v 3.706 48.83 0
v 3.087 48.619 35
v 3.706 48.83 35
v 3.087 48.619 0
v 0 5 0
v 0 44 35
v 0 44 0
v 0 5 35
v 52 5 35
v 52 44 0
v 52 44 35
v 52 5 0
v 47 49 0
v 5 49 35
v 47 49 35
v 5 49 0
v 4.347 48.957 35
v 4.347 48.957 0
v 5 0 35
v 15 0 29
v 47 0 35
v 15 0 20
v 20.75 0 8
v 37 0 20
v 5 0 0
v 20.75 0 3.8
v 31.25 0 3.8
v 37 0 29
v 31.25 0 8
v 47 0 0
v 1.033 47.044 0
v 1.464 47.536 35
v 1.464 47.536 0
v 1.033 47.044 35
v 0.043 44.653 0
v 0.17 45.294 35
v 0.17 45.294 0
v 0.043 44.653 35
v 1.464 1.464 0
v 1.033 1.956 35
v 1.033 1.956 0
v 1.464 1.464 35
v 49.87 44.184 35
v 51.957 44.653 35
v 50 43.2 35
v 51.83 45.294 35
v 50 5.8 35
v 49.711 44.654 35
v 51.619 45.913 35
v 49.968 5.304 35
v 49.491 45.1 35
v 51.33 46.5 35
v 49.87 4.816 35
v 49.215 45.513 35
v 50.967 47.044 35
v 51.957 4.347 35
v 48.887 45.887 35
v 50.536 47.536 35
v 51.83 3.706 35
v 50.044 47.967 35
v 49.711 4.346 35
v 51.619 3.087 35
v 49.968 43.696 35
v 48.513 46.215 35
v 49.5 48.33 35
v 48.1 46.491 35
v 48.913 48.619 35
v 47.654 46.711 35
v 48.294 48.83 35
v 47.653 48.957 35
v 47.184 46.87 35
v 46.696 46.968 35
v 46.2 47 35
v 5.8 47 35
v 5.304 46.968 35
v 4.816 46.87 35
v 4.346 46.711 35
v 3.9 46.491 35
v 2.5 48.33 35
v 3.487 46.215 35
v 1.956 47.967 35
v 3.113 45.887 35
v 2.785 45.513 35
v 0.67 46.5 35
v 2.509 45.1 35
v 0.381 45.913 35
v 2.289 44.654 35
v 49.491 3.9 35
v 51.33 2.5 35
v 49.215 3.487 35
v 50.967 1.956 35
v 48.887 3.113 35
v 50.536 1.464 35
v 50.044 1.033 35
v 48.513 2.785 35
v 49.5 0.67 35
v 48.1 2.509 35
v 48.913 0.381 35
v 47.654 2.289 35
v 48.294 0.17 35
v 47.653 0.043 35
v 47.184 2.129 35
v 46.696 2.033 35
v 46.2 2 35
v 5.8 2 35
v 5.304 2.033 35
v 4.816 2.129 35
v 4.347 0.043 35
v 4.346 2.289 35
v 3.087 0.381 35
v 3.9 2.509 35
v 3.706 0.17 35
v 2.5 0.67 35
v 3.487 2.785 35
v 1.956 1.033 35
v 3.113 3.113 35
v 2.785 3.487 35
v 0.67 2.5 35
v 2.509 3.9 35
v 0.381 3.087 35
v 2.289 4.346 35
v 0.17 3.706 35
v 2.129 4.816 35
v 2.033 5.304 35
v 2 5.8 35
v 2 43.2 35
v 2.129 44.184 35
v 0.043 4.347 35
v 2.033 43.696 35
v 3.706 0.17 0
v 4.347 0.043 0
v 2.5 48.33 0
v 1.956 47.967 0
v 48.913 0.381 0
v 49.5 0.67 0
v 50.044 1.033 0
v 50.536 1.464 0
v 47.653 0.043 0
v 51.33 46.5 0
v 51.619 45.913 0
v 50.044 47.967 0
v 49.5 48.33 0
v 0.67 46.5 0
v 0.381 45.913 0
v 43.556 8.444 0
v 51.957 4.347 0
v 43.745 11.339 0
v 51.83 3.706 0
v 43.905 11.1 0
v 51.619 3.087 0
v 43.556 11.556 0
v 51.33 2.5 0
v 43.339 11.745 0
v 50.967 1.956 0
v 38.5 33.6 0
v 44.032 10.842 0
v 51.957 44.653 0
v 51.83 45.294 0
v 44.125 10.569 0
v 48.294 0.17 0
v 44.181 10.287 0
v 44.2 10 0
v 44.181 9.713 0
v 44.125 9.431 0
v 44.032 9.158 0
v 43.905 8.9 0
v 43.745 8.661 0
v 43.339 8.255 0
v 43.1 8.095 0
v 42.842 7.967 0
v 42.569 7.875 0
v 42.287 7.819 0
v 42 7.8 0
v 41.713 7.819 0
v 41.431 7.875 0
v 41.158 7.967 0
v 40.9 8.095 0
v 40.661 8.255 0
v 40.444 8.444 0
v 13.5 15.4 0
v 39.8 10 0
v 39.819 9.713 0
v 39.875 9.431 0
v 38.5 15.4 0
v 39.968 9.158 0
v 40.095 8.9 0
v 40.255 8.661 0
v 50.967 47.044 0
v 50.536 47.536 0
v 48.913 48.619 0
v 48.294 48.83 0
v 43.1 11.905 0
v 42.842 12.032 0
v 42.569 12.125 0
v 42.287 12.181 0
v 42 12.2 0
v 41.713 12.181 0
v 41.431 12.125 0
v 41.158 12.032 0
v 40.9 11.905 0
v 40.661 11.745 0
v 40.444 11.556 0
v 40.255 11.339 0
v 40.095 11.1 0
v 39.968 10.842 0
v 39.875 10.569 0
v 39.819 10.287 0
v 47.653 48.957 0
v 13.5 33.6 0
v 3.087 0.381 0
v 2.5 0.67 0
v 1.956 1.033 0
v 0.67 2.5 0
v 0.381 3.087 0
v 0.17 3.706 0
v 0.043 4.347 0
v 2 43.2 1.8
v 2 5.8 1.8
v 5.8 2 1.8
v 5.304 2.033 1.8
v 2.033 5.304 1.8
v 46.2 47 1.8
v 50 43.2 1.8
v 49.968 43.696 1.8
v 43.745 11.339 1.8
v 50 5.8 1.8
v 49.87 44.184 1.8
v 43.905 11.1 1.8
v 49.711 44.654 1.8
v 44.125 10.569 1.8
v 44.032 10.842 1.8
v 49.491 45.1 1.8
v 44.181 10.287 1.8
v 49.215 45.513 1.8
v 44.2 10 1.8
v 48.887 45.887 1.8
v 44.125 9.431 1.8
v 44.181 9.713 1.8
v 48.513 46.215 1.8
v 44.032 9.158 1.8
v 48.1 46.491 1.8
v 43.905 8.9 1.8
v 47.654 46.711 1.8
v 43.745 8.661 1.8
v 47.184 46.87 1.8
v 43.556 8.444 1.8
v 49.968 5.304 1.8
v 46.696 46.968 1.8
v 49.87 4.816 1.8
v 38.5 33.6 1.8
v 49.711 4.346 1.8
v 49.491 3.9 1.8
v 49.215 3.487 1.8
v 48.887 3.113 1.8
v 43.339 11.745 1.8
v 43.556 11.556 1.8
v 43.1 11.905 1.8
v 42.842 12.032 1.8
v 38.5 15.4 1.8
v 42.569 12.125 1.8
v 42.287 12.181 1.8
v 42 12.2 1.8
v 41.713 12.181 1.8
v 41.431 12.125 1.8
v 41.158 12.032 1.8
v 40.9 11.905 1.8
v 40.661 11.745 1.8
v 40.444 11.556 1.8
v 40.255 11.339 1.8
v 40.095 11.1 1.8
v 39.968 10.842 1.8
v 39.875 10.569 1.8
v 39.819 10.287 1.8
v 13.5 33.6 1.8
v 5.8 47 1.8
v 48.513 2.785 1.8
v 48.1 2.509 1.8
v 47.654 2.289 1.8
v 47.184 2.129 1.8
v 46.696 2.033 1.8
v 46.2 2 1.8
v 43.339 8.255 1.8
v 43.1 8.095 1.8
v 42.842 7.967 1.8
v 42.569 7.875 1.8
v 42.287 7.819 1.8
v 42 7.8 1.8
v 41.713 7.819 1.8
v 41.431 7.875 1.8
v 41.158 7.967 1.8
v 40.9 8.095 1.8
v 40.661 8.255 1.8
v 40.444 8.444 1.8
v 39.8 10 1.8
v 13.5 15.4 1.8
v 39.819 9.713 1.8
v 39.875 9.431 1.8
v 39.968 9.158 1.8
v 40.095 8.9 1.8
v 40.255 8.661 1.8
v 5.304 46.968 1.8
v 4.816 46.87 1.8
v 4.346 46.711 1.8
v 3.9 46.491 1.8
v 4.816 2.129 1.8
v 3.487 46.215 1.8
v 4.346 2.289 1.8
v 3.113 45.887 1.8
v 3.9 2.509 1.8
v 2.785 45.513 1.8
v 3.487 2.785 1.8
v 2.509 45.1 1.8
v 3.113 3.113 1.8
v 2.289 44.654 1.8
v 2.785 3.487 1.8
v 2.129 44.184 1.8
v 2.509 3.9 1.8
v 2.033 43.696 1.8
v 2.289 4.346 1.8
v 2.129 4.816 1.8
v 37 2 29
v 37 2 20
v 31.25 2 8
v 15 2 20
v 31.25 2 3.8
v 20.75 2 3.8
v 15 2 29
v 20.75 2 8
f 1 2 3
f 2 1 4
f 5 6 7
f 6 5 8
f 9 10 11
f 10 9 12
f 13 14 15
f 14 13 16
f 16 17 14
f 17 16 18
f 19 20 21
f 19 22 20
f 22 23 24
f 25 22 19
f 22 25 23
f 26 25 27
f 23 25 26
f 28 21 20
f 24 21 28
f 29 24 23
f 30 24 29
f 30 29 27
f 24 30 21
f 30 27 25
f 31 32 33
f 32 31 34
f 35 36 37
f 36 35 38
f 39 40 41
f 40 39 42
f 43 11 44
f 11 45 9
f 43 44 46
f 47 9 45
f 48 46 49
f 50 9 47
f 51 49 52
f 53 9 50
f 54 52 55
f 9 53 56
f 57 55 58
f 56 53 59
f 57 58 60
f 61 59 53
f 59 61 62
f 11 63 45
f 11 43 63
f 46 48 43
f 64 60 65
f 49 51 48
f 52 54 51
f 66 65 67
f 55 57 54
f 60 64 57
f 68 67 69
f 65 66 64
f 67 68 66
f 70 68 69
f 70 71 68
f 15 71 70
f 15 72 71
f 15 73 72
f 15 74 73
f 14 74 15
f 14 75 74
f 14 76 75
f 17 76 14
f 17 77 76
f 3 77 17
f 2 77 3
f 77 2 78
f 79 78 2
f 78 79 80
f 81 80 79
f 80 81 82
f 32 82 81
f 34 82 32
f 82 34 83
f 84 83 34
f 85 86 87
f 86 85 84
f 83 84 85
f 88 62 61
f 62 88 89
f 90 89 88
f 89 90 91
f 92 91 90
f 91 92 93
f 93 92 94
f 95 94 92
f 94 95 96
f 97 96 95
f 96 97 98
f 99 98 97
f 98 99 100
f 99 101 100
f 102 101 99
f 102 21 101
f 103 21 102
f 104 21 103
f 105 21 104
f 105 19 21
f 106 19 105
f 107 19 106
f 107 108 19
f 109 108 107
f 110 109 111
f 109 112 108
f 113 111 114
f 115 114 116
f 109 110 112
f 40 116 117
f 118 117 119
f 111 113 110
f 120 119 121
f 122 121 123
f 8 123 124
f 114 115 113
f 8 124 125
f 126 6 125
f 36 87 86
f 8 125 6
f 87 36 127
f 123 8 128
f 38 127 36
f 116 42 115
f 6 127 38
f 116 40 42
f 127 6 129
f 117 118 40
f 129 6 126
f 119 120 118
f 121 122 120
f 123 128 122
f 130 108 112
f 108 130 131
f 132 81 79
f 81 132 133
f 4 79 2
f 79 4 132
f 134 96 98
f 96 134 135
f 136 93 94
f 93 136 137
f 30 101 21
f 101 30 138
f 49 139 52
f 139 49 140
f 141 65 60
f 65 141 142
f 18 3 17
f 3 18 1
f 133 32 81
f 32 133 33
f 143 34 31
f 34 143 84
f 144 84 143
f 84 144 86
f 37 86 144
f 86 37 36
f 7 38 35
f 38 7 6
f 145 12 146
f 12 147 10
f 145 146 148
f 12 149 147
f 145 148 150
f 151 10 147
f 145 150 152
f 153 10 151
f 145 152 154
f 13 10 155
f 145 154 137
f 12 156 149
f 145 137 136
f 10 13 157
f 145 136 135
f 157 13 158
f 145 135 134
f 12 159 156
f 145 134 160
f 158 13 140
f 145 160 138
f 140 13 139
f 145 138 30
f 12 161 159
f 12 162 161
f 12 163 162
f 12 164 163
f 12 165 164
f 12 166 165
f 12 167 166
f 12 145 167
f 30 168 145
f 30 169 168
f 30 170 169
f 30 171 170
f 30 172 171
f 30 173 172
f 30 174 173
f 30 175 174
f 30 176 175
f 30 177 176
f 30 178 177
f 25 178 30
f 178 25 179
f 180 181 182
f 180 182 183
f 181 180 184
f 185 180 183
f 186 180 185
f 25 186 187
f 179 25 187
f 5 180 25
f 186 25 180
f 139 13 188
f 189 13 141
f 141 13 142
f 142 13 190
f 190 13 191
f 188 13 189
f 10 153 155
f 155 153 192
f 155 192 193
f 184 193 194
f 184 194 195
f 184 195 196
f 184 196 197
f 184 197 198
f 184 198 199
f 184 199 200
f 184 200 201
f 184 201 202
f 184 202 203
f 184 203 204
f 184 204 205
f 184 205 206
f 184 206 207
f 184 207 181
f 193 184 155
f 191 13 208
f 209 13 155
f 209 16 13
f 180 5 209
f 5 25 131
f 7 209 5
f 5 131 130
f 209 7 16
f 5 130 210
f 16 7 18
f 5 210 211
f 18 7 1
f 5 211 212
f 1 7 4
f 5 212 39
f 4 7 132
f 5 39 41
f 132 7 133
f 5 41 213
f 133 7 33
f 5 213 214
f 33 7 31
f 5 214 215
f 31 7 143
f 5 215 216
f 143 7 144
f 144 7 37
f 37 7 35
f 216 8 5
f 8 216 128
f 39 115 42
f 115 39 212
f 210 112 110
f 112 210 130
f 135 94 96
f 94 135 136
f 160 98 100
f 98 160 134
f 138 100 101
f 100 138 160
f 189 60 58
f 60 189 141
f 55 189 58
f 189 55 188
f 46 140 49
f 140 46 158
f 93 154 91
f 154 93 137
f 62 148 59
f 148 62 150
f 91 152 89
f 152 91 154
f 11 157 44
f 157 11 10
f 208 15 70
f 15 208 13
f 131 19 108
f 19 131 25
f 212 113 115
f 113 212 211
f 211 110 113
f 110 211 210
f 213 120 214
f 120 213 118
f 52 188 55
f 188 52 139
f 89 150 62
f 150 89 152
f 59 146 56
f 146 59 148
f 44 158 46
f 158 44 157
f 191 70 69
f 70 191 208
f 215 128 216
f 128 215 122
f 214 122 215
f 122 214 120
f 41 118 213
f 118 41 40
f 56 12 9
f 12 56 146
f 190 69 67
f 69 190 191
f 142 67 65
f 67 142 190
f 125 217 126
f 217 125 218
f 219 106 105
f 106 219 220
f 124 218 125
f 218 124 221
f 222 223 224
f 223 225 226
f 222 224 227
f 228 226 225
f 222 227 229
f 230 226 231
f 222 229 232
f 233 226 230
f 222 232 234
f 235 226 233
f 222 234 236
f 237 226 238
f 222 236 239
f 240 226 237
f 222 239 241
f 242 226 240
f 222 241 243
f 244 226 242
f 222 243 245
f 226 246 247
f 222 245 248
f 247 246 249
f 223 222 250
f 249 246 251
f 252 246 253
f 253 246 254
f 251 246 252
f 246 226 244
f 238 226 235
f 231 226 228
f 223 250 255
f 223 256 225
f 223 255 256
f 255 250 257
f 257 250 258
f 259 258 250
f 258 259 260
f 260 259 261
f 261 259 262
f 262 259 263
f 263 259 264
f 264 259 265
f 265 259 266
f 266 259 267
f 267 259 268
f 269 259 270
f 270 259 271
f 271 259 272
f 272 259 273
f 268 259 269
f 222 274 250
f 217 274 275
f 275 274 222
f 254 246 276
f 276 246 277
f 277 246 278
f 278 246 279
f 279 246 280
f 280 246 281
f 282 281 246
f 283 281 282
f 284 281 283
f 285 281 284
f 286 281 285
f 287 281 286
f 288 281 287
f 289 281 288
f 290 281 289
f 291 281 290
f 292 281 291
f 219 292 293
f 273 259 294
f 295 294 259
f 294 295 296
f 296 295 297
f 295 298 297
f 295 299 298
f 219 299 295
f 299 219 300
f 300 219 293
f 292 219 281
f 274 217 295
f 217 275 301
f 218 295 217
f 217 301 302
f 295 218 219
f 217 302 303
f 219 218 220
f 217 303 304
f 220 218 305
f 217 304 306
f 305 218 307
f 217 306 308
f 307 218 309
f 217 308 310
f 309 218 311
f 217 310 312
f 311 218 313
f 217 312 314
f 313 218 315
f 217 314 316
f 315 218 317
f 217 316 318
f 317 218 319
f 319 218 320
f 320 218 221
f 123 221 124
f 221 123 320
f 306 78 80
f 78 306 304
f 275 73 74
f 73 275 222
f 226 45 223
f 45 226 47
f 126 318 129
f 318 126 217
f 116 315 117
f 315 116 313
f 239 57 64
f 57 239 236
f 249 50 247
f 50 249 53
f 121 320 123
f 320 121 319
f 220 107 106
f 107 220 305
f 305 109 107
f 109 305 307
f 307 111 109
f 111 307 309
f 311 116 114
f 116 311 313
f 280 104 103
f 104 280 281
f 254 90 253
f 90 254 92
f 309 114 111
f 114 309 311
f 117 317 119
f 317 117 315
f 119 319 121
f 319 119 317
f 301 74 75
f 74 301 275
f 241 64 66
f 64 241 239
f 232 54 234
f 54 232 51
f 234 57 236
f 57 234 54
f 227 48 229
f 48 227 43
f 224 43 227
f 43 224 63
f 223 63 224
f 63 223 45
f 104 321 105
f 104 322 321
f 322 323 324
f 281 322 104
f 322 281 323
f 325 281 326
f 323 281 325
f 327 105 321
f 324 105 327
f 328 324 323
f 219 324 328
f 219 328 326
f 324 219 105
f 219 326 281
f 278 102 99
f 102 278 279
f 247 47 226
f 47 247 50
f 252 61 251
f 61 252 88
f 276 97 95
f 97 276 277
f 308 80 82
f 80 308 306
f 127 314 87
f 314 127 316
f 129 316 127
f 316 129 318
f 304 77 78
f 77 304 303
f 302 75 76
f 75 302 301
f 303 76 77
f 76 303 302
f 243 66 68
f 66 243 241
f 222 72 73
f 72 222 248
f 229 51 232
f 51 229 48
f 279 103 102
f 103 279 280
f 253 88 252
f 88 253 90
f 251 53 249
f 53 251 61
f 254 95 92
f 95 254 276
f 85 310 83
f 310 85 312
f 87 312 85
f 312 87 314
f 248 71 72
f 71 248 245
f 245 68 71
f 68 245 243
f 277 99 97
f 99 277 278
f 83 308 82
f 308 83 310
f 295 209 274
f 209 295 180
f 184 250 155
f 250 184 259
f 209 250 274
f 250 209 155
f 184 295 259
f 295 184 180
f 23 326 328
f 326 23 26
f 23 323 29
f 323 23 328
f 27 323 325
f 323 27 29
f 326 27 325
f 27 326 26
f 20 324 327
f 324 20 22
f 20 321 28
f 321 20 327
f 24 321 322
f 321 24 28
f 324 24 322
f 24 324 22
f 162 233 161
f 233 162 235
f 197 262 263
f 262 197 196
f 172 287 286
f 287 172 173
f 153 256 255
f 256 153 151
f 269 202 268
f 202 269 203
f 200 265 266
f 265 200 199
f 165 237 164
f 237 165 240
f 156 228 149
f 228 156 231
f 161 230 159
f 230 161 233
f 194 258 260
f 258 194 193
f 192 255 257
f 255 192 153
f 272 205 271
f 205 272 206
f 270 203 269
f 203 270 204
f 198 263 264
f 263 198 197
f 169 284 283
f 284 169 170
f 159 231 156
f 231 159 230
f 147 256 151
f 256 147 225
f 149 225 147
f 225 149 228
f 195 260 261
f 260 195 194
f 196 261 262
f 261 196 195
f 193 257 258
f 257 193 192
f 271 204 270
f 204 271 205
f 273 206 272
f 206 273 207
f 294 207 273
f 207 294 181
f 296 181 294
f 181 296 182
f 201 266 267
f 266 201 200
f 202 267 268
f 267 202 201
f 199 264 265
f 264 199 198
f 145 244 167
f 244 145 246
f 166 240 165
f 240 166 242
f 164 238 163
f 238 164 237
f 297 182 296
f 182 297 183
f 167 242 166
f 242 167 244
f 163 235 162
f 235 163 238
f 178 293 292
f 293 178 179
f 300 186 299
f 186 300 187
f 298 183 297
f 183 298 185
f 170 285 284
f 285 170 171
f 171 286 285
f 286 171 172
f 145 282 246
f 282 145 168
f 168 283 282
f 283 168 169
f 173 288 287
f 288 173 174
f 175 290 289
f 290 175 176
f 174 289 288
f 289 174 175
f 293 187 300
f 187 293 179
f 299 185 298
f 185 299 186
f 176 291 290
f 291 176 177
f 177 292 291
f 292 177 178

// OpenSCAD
// Plant Buddy - Front Shell
// Nico-style rounded shell with two leaf ears, OLED window, and button hole.

$fn = 48;

// Core dimensions (mm)
wall = 2.0;
tol = 0.35;
corner_r = 5;

oled_module_w = 26.0;   // 2.6 cm OLED module width
oled_module_h = 30.0;   // 3.0 cm OLED module height
display_total_h = oled_module_h;
oled_glass_w = 25.0;    // 2.5 cm window width
oled_glass_h = 17.0;    // 1.7 cm window height

inner_w = 48.0;
inner_h = 45.0;
front_total_depth = 35.0; // 3.5 cm front-only depth (front to back)
inner_d = front_total_depth - wall;

ext_w = inner_w + wall * 2;
ext_h = inner_h + wall * 2;
ext_d = inner_d + wall;

usb_w = 10.5;
usb_h = 4.2;

button_r = 2.2;
eps = 0.2;

module rounded_box(w, h, d, r) {
    hull() {
        for (x = [r, w - r])
            for (y = [r, h - r])
                translate([x, y, 0])
                    cylinder(r = r, h = d);
    }
}

module leaf_ear(height, base_w, tip_shift, depth) {
    translate([0, 0, -depth / 2])
    linear_extrude(height = depth) {
        // Leaf silhouette kept solid to avoid split volumes.
        hull() {
            scale([1.0, 0.50]) circle(r = base_w / 2);
            translate([tip_shift * 0.45, height * 0.55])
                scale([0.75, 0.35]) circle(r = base_w / 2);
            translate([tip_shift, height])
                circle(r = 2.2);
        }
    }
}

difference() {
    union() {
        rounded_box(ext_w, ext_h, ext_d, corner_r);
    }

    // Main internal cavity.
    translate([wall, wall, wall - eps])
        rounded_box(inner_w, inner_h, ext_d + eps * 2, corner_r - 1.2);

    // OLED viewing window.
    oled_win_w = oled_glass_w;
    oled_win_h = oled_glass_h + 1.2;
    win_x = (ext_w - oled_win_w) / 2;
    win_y = (ext_h - display_total_h) / 2 + (display_total_h - oled_win_h) / 2;
    translate([win_x, win_y, -0.1])
        cube([oled_win_w, oled_win_h, wall + 0.2]);

    // USB-C opening (bottom edge).
    translate([ext_w / 2 - usb_w / 2, -0.1, wall + 1.8])
        cube([usb_w, wall + 0.2, usb_h]);

    // Right-side near-back wire hole (away from OLED side), support-free profile.
    right_back_hole_w = 21.0;
    right_back_hole_h = 6.0;
    right_back_hole_cy = ext_h - 12.0;
    right_back_hole_cz = ext_d - (wall + 4.2);
    translate([ext_w - 0.1, 0, 0])
        linear_extrude(height = wall + 0.2)
            polygon(points = [
                [right_back_hole_cy - right_back_hole_w / 2, right_back_hole_cz],
                [right_back_hole_cy, right_back_hole_cz + right_back_hole_h / 2],
                [right_back_hole_cy + right_back_hole_w / 2, right_back_hole_cz],
                [right_back_hole_cy, right_back_hole_cz - right_back_hole_h / 2]
            ]);

    // Large rectangular hole at marked front area (upper center of visible side).
    front_marked_hole_w = 22.0;
    front_marked_hole_h = 9.0;
    front_marked_hole_x = (ext_w - front_marked_hole_w) / 2;
    front_marked_hole_z = ext_d - 15.0;
    translate([front_marked_hole_x, -0.1, front_marked_hole_z])
        cube([front_marked_hole_w, wall + 0.2, front_marked_hole_h]);

    // Manual button hole near lower-right front.
    translate([ext_w - 10, 10, -0.1])
        cylinder(r = button_r, h = wall + 0.2);

}
